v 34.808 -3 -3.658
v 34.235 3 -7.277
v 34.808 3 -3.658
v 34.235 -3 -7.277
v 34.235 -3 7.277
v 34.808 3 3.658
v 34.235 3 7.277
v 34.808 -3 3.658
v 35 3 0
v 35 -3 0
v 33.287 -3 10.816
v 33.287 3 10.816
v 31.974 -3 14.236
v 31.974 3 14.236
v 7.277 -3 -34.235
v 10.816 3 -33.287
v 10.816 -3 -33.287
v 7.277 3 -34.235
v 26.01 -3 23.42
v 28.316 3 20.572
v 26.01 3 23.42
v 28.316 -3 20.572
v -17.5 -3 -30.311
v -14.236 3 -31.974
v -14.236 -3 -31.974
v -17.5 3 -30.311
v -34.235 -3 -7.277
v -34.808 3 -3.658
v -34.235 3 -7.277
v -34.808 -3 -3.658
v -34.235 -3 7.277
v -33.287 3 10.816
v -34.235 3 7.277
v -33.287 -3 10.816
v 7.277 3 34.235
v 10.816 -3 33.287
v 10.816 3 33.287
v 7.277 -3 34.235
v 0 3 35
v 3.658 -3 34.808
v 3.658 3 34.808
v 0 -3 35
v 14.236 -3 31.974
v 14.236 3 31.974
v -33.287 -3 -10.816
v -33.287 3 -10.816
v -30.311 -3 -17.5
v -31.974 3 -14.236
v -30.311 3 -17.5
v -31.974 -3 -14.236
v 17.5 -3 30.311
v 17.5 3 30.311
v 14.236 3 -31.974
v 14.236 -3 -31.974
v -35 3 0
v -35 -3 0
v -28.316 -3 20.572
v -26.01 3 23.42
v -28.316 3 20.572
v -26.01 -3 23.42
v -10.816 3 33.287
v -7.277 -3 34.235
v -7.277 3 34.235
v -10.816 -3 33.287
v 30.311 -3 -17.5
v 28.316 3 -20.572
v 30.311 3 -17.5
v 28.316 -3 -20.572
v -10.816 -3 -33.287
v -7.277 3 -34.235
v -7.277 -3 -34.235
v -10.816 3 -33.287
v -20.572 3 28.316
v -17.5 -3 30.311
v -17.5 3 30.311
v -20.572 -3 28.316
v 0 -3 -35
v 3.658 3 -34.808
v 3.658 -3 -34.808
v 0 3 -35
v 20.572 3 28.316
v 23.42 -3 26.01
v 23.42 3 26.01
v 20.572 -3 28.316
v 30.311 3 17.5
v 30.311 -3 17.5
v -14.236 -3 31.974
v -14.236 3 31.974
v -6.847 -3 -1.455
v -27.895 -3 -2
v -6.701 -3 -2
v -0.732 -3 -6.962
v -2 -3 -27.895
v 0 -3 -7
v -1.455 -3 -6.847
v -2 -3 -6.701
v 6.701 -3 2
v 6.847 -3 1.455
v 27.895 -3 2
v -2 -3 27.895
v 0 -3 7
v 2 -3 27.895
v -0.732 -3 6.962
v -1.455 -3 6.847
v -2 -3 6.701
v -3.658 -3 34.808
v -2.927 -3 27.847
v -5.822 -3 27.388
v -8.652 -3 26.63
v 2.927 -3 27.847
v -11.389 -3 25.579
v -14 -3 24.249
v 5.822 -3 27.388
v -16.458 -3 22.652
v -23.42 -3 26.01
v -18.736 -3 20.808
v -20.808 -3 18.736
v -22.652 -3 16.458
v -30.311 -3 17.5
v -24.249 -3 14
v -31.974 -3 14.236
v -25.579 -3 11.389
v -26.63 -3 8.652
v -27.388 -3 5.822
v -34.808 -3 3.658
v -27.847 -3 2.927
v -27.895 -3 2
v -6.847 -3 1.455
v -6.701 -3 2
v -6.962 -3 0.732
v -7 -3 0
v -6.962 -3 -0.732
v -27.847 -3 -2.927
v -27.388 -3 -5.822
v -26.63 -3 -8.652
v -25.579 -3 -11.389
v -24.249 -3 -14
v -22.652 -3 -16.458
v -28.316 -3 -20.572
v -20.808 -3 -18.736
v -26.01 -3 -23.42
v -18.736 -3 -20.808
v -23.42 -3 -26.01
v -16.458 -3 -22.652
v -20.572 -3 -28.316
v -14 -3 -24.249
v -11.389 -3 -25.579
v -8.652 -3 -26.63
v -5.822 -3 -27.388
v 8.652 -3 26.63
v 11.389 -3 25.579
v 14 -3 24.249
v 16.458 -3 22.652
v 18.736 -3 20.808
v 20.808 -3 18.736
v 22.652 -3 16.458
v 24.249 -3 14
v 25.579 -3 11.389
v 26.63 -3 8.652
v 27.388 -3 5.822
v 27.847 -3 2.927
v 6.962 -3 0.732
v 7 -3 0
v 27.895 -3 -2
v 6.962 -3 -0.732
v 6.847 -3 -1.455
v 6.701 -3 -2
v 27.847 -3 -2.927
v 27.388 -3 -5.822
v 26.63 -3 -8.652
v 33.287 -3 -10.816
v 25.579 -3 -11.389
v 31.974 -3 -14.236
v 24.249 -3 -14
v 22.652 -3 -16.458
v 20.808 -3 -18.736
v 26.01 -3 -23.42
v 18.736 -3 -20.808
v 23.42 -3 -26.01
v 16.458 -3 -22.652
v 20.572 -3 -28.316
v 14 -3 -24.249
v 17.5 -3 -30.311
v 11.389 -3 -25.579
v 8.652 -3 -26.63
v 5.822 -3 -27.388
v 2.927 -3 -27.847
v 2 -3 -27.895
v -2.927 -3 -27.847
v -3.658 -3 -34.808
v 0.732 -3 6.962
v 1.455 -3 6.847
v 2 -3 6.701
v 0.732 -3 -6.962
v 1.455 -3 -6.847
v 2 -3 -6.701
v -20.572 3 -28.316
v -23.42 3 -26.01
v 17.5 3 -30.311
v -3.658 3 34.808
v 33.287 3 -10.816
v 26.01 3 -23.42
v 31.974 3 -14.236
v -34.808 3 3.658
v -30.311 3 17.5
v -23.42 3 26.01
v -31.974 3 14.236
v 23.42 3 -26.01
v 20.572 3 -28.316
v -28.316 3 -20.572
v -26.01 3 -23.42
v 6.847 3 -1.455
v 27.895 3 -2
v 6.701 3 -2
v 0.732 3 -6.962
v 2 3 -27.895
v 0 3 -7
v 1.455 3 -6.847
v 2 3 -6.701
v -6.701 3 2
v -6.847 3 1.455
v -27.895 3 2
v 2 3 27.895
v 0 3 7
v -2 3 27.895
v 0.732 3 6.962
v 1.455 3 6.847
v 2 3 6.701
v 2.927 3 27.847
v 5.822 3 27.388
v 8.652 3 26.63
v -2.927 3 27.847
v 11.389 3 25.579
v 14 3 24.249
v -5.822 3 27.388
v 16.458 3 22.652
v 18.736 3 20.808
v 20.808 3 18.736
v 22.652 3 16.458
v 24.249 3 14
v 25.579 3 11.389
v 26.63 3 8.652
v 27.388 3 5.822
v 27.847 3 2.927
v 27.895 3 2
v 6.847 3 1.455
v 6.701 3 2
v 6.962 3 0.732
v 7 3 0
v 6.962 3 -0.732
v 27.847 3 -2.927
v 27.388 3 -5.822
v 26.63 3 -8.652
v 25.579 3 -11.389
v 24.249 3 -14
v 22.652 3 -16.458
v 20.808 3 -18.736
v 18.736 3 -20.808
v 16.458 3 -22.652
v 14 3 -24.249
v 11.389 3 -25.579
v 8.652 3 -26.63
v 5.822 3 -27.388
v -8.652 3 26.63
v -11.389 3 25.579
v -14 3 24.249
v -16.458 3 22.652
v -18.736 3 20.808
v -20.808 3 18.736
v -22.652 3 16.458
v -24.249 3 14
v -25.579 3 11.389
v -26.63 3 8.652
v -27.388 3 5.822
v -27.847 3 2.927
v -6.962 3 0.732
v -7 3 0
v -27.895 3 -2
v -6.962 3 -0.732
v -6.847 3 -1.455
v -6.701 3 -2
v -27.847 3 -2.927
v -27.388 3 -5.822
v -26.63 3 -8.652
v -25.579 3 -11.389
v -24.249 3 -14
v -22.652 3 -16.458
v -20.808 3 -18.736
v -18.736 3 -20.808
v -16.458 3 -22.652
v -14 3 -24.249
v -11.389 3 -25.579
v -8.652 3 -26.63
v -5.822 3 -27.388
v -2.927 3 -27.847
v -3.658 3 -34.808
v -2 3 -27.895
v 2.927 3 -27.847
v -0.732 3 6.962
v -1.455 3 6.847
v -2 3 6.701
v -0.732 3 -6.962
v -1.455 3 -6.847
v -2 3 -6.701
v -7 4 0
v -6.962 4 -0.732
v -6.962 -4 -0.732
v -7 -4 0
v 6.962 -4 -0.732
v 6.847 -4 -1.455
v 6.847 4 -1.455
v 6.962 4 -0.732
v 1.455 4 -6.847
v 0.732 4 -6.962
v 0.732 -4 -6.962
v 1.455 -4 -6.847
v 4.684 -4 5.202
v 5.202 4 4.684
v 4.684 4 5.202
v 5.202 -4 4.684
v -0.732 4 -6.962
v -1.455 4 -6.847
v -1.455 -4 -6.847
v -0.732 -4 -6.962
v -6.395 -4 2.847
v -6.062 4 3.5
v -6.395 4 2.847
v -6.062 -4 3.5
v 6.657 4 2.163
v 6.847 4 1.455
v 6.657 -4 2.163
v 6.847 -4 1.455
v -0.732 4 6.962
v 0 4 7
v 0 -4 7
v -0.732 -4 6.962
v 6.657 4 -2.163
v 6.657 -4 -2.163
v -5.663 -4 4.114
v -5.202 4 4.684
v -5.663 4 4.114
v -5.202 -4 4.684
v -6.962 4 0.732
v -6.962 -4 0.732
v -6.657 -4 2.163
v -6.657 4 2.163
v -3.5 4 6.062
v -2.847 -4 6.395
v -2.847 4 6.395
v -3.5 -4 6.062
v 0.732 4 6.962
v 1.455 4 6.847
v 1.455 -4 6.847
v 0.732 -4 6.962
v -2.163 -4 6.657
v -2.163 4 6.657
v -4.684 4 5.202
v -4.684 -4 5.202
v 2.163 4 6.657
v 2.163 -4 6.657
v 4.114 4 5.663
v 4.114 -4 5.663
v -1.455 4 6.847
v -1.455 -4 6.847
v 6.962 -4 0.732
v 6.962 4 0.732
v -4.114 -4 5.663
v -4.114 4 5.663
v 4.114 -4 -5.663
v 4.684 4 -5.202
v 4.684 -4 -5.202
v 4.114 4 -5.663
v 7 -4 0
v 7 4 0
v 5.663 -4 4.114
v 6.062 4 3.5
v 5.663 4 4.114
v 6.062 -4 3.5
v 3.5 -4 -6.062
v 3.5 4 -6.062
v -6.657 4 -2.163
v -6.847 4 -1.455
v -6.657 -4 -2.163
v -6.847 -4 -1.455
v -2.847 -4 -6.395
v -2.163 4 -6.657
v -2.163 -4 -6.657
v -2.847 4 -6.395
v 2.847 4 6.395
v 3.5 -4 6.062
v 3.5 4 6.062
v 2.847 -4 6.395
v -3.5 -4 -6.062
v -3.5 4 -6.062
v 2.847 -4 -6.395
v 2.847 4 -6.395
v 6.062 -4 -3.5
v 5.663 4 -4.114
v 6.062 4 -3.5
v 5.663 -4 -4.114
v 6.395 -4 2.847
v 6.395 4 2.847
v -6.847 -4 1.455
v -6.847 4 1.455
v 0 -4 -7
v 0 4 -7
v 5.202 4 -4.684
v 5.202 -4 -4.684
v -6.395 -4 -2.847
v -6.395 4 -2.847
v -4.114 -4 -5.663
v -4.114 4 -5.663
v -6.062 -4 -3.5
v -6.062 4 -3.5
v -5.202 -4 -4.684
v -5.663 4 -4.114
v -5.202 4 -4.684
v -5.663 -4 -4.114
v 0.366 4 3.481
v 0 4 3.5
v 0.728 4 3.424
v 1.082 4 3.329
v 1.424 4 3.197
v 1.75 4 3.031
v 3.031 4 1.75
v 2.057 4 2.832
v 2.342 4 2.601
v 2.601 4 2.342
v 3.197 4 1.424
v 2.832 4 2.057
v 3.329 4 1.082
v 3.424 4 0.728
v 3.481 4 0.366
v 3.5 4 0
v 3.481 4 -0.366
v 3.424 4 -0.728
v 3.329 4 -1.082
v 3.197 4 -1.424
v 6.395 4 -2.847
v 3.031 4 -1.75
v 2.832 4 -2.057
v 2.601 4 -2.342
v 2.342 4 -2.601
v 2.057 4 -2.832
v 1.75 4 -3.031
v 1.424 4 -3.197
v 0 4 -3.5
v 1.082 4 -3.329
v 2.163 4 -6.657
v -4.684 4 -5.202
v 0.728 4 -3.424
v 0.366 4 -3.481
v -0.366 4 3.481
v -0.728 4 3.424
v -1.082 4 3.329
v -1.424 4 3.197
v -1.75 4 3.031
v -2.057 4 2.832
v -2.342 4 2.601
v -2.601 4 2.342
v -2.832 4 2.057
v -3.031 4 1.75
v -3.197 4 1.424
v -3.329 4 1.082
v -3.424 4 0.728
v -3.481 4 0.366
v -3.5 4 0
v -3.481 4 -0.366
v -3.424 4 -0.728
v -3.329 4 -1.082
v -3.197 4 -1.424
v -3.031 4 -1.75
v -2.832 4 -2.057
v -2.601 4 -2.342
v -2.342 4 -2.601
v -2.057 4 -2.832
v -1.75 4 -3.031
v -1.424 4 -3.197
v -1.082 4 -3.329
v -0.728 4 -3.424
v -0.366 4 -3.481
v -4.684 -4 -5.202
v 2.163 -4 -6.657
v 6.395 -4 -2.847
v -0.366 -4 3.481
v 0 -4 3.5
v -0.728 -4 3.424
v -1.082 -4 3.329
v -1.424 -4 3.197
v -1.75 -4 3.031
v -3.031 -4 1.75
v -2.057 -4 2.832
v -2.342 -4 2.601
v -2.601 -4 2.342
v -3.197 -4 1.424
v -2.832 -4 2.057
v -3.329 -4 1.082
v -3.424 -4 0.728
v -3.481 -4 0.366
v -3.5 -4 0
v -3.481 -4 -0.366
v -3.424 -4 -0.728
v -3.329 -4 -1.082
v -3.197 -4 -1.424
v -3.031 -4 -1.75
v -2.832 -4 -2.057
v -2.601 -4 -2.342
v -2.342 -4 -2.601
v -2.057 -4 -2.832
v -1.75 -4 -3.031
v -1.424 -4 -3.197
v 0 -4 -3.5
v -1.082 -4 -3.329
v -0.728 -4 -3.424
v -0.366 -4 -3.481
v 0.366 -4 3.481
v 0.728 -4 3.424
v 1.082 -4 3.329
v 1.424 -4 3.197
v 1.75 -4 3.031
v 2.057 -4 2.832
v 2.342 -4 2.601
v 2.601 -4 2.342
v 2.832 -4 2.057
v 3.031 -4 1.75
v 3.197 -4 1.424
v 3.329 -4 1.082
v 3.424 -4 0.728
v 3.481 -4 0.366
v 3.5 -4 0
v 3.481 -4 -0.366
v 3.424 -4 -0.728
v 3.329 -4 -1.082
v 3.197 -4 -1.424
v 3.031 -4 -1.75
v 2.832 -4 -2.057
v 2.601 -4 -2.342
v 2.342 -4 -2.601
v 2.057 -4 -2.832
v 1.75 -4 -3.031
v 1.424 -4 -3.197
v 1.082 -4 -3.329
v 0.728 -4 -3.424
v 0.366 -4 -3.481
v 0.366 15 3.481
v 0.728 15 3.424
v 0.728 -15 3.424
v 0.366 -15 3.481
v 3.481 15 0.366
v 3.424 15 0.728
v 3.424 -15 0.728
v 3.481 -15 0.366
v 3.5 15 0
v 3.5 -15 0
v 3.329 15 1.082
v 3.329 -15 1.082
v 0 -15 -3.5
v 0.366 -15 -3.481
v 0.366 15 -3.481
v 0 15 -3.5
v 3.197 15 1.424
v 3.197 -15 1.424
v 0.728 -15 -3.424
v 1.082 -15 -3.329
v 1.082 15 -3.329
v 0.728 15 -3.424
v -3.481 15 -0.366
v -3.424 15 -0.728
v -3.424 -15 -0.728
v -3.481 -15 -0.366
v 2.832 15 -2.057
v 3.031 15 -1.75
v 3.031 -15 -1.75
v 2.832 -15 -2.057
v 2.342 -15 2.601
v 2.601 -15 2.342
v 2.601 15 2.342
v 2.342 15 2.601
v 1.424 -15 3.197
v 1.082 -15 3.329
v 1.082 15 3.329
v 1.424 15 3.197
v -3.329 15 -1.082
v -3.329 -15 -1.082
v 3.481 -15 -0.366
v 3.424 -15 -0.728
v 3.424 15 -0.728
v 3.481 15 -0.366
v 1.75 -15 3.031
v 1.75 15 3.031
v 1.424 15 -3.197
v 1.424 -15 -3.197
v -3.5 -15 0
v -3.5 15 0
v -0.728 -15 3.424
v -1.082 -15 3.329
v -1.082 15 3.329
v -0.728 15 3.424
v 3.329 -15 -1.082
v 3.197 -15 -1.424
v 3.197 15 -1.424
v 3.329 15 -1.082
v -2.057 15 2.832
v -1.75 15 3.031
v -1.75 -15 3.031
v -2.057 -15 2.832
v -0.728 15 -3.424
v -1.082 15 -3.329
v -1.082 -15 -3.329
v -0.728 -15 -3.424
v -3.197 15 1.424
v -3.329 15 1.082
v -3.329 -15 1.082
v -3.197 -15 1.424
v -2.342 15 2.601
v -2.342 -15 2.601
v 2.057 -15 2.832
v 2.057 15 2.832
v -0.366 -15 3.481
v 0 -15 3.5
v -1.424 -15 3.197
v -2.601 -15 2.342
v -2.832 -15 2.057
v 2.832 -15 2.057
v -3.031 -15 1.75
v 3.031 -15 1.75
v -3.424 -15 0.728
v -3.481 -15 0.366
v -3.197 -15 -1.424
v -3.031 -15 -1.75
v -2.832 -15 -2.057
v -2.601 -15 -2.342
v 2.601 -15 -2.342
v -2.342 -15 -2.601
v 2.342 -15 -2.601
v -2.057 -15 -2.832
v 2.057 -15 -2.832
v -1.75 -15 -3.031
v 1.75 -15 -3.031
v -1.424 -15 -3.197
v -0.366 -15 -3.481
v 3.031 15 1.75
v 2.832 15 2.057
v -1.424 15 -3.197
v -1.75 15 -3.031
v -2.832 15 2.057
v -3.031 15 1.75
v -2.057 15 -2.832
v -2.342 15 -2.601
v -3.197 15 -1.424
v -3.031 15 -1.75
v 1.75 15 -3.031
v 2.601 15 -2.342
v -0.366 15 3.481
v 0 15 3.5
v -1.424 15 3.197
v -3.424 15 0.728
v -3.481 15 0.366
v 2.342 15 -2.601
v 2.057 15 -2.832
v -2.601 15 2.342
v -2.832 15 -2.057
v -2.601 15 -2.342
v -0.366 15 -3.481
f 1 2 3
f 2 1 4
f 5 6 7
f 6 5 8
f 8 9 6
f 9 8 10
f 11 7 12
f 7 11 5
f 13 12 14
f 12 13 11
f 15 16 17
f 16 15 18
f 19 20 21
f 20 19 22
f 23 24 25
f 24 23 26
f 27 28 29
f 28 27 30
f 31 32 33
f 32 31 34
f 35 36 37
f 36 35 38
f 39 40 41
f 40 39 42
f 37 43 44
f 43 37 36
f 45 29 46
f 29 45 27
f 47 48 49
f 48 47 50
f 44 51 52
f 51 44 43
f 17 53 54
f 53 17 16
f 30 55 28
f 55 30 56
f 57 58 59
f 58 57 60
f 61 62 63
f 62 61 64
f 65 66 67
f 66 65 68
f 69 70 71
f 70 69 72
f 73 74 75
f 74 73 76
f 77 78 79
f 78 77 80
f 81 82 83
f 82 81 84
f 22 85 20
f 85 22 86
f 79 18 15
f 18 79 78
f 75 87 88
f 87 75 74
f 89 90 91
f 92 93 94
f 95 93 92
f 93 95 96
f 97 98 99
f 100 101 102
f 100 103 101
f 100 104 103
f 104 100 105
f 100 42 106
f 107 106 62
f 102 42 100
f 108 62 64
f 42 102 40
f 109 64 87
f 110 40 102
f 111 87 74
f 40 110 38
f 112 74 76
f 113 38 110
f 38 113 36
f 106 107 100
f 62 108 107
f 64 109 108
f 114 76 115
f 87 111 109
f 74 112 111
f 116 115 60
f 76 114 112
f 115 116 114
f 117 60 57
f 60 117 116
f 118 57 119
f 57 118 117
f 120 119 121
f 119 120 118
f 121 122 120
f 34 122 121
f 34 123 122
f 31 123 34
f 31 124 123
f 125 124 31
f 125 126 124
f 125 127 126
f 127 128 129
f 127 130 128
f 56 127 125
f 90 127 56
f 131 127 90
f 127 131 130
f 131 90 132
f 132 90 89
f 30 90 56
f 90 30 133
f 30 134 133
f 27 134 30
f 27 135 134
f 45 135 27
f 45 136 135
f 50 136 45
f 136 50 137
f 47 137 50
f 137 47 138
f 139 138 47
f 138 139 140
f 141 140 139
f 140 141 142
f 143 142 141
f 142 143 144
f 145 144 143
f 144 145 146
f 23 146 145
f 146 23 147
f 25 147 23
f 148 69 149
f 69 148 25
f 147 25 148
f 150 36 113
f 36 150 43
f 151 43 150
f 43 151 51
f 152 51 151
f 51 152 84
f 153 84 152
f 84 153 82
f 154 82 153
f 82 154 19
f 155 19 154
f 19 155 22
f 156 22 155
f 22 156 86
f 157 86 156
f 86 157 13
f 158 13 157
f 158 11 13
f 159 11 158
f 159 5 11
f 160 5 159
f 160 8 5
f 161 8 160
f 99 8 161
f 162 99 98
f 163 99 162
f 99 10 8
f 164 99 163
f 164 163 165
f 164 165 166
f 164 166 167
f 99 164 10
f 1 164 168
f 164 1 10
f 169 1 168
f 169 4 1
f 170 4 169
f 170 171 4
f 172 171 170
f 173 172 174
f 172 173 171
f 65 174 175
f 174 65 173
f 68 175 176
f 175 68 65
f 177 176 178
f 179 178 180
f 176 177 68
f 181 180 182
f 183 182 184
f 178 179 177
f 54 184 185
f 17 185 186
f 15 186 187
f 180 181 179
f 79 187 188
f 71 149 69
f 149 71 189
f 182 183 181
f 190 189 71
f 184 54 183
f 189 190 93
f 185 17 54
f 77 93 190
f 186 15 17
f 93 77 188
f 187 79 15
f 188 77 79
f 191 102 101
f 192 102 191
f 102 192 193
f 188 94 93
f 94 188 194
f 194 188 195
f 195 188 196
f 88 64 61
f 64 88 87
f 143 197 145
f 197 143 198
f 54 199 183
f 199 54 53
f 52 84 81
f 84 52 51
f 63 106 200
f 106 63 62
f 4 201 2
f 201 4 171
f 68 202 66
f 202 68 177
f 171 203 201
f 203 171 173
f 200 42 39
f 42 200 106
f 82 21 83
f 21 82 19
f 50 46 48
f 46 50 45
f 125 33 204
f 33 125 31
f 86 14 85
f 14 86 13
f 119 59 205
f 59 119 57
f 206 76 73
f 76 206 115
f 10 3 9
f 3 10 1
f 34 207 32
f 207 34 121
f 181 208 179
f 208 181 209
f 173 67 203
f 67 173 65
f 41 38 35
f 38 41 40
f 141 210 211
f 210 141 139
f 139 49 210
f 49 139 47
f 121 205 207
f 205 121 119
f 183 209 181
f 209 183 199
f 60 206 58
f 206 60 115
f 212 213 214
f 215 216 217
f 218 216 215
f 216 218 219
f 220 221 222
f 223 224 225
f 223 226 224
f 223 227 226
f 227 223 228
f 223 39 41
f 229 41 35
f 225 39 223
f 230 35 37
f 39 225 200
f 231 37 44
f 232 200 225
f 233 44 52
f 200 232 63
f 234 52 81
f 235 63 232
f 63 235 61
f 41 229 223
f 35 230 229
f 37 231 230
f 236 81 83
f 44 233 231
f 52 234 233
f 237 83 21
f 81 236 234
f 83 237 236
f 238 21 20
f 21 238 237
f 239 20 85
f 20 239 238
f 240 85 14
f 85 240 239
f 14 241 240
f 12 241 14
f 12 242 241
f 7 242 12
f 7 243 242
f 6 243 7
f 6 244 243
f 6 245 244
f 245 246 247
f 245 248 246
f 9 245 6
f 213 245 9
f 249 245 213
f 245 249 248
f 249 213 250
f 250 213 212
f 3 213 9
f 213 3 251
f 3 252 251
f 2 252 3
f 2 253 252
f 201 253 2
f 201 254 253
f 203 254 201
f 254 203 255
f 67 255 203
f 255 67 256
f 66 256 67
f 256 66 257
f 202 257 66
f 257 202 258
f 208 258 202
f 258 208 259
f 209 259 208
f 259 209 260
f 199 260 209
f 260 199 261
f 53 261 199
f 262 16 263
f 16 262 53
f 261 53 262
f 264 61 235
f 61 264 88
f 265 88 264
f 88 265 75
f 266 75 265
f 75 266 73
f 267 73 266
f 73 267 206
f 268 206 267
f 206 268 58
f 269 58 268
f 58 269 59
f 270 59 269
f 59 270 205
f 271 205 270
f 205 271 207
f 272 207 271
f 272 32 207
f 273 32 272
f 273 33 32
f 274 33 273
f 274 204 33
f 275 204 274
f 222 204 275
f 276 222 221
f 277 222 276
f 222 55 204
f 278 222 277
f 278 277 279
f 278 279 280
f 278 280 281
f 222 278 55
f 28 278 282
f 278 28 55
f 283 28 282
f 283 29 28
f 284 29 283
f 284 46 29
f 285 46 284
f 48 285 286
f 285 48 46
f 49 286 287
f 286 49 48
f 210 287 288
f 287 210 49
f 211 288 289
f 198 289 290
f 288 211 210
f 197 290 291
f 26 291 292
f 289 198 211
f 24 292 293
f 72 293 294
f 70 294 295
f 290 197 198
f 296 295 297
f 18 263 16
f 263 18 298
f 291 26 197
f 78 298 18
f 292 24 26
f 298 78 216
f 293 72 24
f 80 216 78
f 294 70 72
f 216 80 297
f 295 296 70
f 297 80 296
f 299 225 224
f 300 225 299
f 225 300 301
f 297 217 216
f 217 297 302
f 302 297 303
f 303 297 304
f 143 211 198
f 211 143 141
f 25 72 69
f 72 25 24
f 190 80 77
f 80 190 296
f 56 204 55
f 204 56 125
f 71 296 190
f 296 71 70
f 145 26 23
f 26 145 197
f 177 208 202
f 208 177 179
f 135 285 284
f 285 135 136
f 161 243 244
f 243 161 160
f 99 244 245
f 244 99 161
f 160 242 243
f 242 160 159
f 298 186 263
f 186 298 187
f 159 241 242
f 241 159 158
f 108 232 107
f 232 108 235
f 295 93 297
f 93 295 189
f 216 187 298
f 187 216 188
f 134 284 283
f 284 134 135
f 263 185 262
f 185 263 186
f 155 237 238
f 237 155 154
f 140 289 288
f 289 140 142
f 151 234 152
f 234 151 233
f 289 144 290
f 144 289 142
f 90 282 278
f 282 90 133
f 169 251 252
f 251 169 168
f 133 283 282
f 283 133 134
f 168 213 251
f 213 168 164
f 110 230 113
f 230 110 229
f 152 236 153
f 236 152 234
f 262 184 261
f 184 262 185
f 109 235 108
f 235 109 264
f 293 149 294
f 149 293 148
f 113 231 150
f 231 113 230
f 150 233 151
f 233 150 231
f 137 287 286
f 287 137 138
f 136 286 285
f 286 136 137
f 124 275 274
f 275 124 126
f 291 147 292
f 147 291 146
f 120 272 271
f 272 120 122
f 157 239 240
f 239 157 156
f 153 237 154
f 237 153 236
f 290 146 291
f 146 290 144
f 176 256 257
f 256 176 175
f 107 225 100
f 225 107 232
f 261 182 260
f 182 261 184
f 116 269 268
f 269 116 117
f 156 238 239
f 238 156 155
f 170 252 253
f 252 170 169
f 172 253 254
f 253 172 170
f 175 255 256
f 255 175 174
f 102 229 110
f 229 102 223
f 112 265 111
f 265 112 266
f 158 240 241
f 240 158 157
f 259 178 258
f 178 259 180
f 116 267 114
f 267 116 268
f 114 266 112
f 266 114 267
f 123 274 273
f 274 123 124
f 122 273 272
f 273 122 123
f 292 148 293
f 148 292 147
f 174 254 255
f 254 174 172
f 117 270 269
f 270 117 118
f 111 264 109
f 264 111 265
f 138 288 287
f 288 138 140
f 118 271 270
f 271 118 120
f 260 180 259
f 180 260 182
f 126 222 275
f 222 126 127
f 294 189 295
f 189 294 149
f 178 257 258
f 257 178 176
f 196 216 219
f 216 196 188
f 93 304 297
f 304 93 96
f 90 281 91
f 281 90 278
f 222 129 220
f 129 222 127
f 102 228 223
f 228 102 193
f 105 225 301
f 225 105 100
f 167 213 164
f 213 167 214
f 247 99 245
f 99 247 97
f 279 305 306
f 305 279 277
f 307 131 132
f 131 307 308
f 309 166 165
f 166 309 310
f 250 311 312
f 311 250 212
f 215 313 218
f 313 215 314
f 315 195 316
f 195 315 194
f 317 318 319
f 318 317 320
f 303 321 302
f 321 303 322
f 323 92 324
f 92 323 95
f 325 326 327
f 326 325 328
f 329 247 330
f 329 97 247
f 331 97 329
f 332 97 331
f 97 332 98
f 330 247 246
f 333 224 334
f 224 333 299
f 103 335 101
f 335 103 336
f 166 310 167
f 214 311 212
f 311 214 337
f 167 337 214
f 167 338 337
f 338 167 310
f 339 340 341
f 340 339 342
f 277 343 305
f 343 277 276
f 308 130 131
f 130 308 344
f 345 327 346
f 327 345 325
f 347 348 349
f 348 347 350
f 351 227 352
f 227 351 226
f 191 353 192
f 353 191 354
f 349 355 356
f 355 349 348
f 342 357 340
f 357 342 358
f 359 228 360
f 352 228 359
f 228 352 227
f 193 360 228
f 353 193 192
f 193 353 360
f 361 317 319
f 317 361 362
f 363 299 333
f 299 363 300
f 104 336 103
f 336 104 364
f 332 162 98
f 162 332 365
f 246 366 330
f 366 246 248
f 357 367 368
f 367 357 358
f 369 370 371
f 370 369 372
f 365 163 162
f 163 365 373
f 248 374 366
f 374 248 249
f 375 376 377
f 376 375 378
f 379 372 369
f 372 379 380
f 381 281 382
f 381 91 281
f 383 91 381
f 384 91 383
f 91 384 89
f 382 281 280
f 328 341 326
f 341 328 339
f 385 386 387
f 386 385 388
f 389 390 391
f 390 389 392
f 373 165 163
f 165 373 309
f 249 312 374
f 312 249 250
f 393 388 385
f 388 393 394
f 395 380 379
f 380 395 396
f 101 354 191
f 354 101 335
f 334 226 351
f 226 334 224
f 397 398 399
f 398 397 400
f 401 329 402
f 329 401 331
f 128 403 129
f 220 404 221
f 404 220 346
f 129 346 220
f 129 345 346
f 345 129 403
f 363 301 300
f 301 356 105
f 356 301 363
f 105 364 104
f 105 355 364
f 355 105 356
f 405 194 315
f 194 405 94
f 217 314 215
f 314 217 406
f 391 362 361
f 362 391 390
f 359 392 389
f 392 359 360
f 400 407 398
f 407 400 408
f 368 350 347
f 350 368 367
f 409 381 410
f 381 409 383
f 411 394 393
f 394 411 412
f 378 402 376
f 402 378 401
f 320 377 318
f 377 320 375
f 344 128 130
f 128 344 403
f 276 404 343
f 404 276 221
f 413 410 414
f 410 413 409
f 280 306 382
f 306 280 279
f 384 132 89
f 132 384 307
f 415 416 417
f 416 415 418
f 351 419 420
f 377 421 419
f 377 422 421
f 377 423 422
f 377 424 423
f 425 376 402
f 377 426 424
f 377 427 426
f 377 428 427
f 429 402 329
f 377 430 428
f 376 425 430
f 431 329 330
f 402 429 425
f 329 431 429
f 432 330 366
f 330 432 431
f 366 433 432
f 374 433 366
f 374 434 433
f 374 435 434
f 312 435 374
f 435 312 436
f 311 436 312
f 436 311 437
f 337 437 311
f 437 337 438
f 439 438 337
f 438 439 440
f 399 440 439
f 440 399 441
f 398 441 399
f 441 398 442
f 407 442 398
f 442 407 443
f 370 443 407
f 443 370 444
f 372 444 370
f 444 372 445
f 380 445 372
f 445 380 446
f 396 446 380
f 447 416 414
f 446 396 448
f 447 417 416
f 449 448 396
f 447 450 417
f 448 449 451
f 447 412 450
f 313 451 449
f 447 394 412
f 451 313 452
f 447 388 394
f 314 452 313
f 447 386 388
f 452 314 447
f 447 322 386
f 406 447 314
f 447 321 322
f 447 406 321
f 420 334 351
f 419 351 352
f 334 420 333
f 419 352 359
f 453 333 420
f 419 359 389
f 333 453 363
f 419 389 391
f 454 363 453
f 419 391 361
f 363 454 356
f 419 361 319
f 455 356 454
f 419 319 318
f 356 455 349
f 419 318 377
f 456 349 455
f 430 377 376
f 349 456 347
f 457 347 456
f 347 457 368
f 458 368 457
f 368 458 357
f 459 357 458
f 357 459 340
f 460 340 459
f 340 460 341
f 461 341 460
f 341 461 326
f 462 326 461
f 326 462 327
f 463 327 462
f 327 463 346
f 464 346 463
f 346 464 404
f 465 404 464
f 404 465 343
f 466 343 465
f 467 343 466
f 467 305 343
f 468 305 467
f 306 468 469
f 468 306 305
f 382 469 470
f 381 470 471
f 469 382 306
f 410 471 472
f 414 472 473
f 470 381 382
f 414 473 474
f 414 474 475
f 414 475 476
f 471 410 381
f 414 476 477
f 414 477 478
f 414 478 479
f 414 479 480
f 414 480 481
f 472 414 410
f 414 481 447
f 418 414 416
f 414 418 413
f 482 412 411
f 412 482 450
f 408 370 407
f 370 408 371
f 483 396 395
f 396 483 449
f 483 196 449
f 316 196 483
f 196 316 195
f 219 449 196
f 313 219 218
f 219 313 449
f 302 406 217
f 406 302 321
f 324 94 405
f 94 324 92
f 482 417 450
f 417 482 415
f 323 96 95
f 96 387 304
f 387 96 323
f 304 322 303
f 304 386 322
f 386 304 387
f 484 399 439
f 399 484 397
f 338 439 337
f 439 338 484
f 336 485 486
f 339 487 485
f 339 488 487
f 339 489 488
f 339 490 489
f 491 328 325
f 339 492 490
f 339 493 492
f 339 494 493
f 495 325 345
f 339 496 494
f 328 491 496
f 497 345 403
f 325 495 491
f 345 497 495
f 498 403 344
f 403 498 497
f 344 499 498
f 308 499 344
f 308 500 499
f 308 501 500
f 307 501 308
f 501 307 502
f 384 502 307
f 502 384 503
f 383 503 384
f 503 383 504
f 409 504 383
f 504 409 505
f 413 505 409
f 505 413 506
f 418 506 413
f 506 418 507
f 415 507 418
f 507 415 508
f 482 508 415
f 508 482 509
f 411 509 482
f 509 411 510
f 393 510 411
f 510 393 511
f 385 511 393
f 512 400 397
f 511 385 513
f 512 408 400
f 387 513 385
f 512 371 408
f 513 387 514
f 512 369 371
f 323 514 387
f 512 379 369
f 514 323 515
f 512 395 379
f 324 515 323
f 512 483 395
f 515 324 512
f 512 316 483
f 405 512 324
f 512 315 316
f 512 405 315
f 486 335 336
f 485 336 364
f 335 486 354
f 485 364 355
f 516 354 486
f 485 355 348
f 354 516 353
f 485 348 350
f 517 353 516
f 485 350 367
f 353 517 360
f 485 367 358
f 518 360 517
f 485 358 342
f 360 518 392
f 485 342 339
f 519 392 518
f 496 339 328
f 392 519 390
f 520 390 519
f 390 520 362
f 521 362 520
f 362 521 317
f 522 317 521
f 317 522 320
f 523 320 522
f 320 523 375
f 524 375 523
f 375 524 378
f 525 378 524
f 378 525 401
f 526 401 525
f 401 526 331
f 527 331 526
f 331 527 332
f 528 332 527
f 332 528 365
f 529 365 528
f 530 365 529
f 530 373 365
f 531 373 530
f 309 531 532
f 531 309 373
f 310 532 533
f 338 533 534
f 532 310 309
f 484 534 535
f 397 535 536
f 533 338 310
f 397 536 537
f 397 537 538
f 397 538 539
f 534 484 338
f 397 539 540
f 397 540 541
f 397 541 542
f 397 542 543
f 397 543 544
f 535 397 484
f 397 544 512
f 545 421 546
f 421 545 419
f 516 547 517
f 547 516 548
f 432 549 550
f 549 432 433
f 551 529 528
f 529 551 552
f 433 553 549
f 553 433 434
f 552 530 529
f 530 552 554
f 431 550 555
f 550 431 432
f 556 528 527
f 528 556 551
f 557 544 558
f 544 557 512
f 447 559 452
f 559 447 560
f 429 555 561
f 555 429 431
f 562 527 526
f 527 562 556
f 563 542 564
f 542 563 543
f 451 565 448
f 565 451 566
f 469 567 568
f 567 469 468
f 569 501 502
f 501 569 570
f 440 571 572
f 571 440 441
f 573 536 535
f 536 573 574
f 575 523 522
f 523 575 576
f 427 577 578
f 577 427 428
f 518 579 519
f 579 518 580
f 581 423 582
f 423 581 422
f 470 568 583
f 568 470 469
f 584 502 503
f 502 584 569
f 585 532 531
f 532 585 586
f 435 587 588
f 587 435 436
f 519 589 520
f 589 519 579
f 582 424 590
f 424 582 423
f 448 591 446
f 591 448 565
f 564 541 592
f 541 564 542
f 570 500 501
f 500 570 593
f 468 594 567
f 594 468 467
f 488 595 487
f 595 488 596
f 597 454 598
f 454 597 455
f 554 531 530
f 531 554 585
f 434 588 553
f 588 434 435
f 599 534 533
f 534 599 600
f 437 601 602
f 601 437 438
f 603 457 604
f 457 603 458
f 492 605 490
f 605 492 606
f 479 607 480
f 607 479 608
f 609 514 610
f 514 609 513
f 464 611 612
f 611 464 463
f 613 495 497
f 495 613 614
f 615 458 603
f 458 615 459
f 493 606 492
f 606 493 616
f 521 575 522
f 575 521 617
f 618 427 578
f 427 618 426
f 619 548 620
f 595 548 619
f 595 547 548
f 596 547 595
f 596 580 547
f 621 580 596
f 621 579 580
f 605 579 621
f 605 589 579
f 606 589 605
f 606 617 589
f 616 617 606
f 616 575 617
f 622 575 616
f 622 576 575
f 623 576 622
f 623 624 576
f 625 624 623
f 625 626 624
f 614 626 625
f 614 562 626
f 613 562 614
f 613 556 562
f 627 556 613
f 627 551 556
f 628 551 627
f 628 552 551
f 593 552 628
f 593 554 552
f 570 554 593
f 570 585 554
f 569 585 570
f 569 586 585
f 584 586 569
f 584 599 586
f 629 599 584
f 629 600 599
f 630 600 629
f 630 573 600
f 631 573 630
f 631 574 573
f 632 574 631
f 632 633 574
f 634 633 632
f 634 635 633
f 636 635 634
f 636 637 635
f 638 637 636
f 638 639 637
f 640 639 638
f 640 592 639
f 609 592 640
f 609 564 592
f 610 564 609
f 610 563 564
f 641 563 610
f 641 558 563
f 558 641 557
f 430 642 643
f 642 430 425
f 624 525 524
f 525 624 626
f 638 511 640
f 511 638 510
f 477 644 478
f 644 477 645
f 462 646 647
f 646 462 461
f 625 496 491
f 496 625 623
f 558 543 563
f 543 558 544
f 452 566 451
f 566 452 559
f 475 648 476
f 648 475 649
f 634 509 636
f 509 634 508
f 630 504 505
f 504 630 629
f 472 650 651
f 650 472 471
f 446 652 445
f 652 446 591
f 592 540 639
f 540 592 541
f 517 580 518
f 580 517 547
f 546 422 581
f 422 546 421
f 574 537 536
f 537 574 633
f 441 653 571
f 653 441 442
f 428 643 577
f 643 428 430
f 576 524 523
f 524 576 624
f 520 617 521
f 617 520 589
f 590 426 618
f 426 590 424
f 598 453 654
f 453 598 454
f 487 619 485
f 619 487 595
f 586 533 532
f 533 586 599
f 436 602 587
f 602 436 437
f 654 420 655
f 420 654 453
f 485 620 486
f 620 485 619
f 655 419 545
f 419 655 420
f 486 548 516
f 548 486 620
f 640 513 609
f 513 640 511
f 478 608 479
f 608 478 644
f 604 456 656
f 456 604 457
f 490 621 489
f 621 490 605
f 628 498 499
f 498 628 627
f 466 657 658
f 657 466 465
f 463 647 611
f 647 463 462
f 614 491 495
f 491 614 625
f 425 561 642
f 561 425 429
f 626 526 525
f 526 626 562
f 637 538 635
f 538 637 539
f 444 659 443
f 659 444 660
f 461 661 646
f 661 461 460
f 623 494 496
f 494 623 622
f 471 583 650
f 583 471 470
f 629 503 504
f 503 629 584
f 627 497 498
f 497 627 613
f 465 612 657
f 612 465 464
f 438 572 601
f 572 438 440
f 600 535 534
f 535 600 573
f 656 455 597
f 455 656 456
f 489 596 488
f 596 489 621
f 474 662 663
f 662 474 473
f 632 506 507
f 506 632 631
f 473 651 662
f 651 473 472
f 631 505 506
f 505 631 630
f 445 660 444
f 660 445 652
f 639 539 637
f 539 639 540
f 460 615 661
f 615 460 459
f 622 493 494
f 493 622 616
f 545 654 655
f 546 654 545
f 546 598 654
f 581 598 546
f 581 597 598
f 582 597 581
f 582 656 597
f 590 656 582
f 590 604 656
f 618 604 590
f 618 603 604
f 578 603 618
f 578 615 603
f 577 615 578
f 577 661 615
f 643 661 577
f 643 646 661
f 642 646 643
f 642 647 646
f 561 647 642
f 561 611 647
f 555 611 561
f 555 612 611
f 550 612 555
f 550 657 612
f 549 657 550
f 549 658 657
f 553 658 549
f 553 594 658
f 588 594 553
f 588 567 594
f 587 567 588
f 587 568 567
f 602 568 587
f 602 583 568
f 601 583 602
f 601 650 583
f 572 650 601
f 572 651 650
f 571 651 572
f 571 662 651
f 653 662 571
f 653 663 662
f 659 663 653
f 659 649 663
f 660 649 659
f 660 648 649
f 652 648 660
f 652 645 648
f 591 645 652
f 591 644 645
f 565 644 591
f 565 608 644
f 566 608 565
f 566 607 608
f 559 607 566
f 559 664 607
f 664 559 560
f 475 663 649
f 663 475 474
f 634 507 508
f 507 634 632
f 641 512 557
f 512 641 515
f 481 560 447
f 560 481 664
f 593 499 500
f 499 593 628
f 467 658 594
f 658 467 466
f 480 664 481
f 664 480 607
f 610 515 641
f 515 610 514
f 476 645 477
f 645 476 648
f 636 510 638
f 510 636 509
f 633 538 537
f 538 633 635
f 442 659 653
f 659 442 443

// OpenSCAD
// file: _common.scad
// mechanism 共用設定 + 齒輪 module
$fn = 60;

// 簡化齒輪：N 個齒、節圓半徑 r、齒高 h、齒寬 w
module simple_gear(N = 16, r = 20, h = 4, thick = 6) {
  union() {
    // 主圓盤
    cylinder(h = thick, r = r, center = true);
    // 齒（梯形）
    for (i = [0:N-1]) {
      rotate([0, 0, i * 360 / N])
        translate([r, 0, 0])
          linear_extrude(height = thick, center = true)
            polygon([[0, -2.4], [h, -1.4], [h, 1.4], [0, 2.4]]);
    }
    // 中心凸軸
    cylinder(h = thick * 1.4, r = r * 0.18, center = true);
  }
}
// main file
// 輪軸 Wheel & Axle — 大輪 + 小軸（同軸），如方向盤
include <_common.scad>

// 大輪（厚圓盤）
color([0.86, 0.15, 0.46])
  difference() {
    rotate([90, 0, 0]) cylinder(h = 6, r = 35, center = true);
    // 內部減重圓圈
    rotate([90, 0, 0]) cylinder(h = 8, r = 28, center = true);
  }

// 輪輻（4 條，從中央輻射）
color([0.86, 0.15, 0.46])
  for (a = [0, 90, 180, 270])
    rotate([0, a, 0])
      translate([-2, -3, -29])
        cube([4, 6, 23]);

// 中央軸套
color([0.51, 0.09, 0.26])
  rotate([90, 0, 0]) cylinder(h = 8, r = 7, center = true);

// 小軸（穿出兩側）
color([0.32, 0.08, 0.16])
  rotate([90, 0, 0]) cylinder(h = 30, r = 3.5, center = true);
